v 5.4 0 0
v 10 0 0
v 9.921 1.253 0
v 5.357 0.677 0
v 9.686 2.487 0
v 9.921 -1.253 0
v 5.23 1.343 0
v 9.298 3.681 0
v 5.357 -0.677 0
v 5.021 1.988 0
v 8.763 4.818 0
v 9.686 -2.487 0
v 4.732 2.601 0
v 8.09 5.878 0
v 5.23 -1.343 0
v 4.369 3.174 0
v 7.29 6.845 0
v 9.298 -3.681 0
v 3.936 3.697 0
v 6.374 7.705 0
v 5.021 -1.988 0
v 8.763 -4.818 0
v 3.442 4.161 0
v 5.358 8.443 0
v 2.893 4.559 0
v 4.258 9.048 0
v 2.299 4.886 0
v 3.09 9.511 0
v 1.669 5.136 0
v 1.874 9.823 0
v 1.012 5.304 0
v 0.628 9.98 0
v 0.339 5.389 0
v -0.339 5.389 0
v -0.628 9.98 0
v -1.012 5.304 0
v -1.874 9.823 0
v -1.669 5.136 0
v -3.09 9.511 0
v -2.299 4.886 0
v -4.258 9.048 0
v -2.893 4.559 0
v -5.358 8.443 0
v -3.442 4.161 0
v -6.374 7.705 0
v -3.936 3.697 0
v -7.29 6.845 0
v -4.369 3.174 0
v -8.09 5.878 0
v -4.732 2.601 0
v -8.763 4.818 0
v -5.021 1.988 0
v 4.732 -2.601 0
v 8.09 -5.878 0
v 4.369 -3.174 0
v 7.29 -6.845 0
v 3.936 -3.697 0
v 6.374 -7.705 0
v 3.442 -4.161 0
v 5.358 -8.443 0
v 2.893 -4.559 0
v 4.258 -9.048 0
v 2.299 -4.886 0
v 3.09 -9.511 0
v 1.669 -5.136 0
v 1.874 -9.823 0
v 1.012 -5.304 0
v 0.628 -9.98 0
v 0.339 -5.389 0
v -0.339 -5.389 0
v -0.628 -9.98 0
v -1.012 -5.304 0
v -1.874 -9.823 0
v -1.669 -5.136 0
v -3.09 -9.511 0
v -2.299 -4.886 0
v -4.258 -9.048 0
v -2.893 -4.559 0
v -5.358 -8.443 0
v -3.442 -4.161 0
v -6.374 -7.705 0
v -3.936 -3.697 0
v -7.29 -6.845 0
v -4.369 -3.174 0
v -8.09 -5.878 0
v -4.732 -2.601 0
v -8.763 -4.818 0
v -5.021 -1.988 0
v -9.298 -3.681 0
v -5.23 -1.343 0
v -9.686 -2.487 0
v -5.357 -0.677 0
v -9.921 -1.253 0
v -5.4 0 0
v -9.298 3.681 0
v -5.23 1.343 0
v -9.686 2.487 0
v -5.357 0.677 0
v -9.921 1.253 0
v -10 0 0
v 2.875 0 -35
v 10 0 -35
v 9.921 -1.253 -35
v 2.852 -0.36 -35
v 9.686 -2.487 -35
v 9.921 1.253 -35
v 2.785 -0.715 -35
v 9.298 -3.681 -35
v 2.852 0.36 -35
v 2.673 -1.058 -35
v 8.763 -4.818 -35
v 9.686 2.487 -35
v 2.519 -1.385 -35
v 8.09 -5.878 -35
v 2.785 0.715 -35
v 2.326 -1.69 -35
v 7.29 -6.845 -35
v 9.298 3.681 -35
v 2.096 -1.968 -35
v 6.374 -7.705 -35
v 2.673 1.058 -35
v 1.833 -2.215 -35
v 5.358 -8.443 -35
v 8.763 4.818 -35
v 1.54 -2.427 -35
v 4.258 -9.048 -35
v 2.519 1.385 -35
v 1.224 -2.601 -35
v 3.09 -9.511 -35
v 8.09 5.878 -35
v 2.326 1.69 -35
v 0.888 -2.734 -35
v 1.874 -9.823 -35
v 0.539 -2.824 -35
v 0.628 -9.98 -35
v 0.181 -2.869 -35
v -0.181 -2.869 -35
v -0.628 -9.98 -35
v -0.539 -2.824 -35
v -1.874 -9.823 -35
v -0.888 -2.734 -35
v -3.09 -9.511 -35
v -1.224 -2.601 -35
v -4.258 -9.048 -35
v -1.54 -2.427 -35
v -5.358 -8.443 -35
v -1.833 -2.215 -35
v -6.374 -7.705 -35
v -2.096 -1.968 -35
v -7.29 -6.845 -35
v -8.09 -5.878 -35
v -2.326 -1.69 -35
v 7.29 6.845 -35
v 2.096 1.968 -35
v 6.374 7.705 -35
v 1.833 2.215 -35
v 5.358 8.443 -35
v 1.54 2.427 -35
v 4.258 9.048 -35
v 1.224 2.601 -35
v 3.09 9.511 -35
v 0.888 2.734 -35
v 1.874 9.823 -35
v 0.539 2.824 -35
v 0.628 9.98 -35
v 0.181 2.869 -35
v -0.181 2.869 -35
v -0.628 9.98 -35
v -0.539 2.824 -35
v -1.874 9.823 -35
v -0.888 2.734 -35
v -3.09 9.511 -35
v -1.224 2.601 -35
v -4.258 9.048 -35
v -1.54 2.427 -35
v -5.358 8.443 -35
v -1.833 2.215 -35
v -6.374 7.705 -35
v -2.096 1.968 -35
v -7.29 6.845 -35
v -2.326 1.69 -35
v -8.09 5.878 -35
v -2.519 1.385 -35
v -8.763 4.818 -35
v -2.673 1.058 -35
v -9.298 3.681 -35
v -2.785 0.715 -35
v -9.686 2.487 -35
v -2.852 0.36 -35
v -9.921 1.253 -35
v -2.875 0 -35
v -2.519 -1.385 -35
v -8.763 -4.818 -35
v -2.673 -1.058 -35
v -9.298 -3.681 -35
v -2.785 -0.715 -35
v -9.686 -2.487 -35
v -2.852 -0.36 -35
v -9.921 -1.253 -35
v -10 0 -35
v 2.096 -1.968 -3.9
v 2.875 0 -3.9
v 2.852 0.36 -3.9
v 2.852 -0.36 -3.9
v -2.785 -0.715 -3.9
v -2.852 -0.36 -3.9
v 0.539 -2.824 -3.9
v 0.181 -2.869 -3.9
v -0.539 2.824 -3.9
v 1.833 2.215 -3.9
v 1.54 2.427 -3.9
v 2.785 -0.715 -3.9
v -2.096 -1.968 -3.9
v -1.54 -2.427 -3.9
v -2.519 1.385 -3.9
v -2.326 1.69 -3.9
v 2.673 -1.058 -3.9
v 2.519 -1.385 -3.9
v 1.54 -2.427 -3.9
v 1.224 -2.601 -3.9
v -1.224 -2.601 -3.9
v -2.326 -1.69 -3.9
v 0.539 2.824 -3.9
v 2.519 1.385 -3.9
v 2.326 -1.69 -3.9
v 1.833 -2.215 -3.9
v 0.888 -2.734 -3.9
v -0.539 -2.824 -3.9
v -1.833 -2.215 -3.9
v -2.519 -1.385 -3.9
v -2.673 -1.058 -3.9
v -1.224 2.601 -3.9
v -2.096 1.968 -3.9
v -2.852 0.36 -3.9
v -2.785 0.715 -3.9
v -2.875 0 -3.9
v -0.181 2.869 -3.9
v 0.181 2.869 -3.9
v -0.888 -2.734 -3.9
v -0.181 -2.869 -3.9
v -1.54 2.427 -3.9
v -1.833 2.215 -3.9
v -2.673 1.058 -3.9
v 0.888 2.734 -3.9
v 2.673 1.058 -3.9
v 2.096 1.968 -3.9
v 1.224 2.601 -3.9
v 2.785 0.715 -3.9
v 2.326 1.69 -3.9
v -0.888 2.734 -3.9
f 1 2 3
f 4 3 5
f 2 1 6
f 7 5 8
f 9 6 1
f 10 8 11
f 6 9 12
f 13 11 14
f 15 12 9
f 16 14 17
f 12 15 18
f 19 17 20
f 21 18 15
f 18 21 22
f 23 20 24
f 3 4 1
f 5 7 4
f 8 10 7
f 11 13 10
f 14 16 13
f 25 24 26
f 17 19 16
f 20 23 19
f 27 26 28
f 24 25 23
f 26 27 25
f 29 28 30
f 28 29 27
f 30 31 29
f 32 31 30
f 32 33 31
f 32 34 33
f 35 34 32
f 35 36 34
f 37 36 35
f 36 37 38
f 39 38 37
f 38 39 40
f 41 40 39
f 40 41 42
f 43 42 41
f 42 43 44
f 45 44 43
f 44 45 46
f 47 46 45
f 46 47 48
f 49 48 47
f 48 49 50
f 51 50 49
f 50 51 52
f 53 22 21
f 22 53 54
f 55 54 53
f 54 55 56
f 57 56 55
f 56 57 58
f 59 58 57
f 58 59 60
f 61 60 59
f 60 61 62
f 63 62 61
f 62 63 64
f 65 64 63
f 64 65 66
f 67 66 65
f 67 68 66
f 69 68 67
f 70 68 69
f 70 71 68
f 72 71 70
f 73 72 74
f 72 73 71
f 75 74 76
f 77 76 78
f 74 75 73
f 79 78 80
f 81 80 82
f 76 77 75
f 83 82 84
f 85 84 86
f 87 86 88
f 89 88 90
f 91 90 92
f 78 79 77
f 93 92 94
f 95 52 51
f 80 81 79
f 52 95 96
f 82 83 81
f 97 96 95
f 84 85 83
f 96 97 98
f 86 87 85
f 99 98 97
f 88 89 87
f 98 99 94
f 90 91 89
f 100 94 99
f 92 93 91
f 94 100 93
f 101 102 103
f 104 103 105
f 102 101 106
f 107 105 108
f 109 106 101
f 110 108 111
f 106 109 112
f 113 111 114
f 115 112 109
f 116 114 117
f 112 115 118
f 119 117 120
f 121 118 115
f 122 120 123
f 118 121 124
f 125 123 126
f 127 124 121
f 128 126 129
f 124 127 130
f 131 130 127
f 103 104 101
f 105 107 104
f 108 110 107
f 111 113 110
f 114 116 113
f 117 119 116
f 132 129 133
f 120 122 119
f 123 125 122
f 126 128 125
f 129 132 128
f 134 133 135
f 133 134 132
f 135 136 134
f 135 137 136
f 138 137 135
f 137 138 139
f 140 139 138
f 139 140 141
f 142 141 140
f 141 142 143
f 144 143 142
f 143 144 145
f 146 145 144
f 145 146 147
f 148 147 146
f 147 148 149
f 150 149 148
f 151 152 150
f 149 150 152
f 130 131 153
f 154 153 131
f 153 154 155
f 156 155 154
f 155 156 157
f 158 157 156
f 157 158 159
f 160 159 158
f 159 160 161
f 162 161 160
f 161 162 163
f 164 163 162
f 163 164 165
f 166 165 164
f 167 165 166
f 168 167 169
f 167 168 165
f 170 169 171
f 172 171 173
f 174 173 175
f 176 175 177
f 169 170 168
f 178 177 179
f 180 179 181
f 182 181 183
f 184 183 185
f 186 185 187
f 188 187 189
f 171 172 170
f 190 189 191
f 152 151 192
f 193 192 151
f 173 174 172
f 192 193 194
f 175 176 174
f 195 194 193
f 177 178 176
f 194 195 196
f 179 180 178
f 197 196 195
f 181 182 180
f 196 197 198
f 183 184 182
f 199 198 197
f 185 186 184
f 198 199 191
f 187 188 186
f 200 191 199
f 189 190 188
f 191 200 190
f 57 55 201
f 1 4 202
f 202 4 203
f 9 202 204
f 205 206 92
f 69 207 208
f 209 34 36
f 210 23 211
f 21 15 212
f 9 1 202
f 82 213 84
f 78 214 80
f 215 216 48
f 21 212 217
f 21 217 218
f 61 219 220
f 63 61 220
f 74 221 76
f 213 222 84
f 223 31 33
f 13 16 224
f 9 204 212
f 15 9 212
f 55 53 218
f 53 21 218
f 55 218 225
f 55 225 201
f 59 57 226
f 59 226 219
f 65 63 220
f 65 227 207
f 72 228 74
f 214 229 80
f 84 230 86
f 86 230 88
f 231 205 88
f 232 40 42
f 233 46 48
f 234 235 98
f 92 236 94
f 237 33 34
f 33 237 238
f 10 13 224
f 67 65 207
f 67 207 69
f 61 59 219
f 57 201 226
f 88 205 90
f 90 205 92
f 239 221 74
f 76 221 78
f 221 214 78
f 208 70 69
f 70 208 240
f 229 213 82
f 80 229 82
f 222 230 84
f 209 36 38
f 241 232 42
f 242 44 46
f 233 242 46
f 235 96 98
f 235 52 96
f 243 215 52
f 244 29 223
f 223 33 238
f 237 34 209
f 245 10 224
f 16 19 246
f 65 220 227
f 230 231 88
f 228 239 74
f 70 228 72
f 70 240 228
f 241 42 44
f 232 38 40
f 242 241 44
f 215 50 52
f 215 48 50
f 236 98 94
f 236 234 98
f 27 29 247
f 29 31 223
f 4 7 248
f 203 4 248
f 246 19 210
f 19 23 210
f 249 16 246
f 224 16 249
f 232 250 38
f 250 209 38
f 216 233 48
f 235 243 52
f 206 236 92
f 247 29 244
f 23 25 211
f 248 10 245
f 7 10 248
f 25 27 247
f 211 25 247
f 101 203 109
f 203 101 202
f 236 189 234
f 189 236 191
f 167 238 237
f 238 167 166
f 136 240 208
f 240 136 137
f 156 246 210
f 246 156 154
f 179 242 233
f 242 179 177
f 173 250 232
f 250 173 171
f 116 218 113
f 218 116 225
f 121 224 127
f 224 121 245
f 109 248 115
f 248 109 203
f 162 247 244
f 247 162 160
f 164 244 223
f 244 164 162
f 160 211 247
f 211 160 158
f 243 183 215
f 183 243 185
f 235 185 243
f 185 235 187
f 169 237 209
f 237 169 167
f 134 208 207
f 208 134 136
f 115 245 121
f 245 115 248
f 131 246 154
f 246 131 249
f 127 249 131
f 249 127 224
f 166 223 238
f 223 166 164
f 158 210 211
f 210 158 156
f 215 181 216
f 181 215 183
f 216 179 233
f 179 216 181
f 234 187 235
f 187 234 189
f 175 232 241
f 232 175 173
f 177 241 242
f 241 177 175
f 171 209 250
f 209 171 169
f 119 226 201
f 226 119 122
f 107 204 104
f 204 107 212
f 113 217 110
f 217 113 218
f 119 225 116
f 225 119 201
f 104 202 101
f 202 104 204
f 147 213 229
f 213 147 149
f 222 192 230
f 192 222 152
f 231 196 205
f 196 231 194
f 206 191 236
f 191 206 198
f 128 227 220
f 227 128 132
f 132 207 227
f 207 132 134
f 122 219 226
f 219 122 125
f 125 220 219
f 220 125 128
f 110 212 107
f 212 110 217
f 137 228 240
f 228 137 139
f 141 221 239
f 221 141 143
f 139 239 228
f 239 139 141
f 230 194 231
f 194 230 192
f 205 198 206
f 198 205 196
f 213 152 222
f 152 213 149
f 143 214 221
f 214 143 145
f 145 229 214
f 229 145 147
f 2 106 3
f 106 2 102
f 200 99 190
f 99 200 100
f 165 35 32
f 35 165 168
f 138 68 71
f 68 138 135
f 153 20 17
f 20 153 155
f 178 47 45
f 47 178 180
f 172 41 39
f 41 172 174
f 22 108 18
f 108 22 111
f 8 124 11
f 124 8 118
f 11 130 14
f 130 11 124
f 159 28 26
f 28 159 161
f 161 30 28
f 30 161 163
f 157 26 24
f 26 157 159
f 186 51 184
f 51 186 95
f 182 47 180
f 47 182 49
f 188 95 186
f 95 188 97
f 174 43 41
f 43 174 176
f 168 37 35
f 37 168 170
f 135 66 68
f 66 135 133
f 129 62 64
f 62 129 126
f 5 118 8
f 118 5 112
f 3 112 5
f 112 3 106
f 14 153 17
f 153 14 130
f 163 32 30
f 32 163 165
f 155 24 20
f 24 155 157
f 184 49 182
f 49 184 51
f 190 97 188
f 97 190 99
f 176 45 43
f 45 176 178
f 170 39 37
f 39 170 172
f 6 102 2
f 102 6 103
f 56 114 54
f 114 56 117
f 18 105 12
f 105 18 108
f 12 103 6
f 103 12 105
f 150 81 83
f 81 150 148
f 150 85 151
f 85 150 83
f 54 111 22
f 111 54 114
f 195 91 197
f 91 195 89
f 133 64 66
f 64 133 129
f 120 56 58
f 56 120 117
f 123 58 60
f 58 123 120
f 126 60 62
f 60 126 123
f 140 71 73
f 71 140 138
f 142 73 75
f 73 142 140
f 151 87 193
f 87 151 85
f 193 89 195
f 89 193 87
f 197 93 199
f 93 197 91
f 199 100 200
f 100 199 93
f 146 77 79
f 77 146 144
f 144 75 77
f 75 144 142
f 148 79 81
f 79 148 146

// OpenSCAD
$fn = 50;


difference() {
	union() {
		translate(v = [0, 0, -35.0000000000]) {
			cylinder(h = 35, r = 10.0000000000);
		}
	}
	union() {
		translate(v = [0, 0, 0]) {
			rotate(a = [0, 0, 0]) {
				difference() {
					union() {
						#translate(v = [0, 0, -35.0000000000]) {
							cylinder(h = 35, r = 2.6000000000);
						}
						#translate(v = [0, 0, -3.9000000000]) {
							cylinder(h = 3.9000000000, r = 10.0000000000, r1 = 2.8750000000, r2 = 5.4000000000);
						}
						#translate(v = [0, 0, -35.0000000000]) {
							cylinder(h = 35, r = 2.8750000000);
						}
						#translate(v = [0, 0, -35.0000000000]) {
							cylinder(h = 35, r = 2.6000000000);
						}
					}
					union();
				}
			}
		}
	}
}
